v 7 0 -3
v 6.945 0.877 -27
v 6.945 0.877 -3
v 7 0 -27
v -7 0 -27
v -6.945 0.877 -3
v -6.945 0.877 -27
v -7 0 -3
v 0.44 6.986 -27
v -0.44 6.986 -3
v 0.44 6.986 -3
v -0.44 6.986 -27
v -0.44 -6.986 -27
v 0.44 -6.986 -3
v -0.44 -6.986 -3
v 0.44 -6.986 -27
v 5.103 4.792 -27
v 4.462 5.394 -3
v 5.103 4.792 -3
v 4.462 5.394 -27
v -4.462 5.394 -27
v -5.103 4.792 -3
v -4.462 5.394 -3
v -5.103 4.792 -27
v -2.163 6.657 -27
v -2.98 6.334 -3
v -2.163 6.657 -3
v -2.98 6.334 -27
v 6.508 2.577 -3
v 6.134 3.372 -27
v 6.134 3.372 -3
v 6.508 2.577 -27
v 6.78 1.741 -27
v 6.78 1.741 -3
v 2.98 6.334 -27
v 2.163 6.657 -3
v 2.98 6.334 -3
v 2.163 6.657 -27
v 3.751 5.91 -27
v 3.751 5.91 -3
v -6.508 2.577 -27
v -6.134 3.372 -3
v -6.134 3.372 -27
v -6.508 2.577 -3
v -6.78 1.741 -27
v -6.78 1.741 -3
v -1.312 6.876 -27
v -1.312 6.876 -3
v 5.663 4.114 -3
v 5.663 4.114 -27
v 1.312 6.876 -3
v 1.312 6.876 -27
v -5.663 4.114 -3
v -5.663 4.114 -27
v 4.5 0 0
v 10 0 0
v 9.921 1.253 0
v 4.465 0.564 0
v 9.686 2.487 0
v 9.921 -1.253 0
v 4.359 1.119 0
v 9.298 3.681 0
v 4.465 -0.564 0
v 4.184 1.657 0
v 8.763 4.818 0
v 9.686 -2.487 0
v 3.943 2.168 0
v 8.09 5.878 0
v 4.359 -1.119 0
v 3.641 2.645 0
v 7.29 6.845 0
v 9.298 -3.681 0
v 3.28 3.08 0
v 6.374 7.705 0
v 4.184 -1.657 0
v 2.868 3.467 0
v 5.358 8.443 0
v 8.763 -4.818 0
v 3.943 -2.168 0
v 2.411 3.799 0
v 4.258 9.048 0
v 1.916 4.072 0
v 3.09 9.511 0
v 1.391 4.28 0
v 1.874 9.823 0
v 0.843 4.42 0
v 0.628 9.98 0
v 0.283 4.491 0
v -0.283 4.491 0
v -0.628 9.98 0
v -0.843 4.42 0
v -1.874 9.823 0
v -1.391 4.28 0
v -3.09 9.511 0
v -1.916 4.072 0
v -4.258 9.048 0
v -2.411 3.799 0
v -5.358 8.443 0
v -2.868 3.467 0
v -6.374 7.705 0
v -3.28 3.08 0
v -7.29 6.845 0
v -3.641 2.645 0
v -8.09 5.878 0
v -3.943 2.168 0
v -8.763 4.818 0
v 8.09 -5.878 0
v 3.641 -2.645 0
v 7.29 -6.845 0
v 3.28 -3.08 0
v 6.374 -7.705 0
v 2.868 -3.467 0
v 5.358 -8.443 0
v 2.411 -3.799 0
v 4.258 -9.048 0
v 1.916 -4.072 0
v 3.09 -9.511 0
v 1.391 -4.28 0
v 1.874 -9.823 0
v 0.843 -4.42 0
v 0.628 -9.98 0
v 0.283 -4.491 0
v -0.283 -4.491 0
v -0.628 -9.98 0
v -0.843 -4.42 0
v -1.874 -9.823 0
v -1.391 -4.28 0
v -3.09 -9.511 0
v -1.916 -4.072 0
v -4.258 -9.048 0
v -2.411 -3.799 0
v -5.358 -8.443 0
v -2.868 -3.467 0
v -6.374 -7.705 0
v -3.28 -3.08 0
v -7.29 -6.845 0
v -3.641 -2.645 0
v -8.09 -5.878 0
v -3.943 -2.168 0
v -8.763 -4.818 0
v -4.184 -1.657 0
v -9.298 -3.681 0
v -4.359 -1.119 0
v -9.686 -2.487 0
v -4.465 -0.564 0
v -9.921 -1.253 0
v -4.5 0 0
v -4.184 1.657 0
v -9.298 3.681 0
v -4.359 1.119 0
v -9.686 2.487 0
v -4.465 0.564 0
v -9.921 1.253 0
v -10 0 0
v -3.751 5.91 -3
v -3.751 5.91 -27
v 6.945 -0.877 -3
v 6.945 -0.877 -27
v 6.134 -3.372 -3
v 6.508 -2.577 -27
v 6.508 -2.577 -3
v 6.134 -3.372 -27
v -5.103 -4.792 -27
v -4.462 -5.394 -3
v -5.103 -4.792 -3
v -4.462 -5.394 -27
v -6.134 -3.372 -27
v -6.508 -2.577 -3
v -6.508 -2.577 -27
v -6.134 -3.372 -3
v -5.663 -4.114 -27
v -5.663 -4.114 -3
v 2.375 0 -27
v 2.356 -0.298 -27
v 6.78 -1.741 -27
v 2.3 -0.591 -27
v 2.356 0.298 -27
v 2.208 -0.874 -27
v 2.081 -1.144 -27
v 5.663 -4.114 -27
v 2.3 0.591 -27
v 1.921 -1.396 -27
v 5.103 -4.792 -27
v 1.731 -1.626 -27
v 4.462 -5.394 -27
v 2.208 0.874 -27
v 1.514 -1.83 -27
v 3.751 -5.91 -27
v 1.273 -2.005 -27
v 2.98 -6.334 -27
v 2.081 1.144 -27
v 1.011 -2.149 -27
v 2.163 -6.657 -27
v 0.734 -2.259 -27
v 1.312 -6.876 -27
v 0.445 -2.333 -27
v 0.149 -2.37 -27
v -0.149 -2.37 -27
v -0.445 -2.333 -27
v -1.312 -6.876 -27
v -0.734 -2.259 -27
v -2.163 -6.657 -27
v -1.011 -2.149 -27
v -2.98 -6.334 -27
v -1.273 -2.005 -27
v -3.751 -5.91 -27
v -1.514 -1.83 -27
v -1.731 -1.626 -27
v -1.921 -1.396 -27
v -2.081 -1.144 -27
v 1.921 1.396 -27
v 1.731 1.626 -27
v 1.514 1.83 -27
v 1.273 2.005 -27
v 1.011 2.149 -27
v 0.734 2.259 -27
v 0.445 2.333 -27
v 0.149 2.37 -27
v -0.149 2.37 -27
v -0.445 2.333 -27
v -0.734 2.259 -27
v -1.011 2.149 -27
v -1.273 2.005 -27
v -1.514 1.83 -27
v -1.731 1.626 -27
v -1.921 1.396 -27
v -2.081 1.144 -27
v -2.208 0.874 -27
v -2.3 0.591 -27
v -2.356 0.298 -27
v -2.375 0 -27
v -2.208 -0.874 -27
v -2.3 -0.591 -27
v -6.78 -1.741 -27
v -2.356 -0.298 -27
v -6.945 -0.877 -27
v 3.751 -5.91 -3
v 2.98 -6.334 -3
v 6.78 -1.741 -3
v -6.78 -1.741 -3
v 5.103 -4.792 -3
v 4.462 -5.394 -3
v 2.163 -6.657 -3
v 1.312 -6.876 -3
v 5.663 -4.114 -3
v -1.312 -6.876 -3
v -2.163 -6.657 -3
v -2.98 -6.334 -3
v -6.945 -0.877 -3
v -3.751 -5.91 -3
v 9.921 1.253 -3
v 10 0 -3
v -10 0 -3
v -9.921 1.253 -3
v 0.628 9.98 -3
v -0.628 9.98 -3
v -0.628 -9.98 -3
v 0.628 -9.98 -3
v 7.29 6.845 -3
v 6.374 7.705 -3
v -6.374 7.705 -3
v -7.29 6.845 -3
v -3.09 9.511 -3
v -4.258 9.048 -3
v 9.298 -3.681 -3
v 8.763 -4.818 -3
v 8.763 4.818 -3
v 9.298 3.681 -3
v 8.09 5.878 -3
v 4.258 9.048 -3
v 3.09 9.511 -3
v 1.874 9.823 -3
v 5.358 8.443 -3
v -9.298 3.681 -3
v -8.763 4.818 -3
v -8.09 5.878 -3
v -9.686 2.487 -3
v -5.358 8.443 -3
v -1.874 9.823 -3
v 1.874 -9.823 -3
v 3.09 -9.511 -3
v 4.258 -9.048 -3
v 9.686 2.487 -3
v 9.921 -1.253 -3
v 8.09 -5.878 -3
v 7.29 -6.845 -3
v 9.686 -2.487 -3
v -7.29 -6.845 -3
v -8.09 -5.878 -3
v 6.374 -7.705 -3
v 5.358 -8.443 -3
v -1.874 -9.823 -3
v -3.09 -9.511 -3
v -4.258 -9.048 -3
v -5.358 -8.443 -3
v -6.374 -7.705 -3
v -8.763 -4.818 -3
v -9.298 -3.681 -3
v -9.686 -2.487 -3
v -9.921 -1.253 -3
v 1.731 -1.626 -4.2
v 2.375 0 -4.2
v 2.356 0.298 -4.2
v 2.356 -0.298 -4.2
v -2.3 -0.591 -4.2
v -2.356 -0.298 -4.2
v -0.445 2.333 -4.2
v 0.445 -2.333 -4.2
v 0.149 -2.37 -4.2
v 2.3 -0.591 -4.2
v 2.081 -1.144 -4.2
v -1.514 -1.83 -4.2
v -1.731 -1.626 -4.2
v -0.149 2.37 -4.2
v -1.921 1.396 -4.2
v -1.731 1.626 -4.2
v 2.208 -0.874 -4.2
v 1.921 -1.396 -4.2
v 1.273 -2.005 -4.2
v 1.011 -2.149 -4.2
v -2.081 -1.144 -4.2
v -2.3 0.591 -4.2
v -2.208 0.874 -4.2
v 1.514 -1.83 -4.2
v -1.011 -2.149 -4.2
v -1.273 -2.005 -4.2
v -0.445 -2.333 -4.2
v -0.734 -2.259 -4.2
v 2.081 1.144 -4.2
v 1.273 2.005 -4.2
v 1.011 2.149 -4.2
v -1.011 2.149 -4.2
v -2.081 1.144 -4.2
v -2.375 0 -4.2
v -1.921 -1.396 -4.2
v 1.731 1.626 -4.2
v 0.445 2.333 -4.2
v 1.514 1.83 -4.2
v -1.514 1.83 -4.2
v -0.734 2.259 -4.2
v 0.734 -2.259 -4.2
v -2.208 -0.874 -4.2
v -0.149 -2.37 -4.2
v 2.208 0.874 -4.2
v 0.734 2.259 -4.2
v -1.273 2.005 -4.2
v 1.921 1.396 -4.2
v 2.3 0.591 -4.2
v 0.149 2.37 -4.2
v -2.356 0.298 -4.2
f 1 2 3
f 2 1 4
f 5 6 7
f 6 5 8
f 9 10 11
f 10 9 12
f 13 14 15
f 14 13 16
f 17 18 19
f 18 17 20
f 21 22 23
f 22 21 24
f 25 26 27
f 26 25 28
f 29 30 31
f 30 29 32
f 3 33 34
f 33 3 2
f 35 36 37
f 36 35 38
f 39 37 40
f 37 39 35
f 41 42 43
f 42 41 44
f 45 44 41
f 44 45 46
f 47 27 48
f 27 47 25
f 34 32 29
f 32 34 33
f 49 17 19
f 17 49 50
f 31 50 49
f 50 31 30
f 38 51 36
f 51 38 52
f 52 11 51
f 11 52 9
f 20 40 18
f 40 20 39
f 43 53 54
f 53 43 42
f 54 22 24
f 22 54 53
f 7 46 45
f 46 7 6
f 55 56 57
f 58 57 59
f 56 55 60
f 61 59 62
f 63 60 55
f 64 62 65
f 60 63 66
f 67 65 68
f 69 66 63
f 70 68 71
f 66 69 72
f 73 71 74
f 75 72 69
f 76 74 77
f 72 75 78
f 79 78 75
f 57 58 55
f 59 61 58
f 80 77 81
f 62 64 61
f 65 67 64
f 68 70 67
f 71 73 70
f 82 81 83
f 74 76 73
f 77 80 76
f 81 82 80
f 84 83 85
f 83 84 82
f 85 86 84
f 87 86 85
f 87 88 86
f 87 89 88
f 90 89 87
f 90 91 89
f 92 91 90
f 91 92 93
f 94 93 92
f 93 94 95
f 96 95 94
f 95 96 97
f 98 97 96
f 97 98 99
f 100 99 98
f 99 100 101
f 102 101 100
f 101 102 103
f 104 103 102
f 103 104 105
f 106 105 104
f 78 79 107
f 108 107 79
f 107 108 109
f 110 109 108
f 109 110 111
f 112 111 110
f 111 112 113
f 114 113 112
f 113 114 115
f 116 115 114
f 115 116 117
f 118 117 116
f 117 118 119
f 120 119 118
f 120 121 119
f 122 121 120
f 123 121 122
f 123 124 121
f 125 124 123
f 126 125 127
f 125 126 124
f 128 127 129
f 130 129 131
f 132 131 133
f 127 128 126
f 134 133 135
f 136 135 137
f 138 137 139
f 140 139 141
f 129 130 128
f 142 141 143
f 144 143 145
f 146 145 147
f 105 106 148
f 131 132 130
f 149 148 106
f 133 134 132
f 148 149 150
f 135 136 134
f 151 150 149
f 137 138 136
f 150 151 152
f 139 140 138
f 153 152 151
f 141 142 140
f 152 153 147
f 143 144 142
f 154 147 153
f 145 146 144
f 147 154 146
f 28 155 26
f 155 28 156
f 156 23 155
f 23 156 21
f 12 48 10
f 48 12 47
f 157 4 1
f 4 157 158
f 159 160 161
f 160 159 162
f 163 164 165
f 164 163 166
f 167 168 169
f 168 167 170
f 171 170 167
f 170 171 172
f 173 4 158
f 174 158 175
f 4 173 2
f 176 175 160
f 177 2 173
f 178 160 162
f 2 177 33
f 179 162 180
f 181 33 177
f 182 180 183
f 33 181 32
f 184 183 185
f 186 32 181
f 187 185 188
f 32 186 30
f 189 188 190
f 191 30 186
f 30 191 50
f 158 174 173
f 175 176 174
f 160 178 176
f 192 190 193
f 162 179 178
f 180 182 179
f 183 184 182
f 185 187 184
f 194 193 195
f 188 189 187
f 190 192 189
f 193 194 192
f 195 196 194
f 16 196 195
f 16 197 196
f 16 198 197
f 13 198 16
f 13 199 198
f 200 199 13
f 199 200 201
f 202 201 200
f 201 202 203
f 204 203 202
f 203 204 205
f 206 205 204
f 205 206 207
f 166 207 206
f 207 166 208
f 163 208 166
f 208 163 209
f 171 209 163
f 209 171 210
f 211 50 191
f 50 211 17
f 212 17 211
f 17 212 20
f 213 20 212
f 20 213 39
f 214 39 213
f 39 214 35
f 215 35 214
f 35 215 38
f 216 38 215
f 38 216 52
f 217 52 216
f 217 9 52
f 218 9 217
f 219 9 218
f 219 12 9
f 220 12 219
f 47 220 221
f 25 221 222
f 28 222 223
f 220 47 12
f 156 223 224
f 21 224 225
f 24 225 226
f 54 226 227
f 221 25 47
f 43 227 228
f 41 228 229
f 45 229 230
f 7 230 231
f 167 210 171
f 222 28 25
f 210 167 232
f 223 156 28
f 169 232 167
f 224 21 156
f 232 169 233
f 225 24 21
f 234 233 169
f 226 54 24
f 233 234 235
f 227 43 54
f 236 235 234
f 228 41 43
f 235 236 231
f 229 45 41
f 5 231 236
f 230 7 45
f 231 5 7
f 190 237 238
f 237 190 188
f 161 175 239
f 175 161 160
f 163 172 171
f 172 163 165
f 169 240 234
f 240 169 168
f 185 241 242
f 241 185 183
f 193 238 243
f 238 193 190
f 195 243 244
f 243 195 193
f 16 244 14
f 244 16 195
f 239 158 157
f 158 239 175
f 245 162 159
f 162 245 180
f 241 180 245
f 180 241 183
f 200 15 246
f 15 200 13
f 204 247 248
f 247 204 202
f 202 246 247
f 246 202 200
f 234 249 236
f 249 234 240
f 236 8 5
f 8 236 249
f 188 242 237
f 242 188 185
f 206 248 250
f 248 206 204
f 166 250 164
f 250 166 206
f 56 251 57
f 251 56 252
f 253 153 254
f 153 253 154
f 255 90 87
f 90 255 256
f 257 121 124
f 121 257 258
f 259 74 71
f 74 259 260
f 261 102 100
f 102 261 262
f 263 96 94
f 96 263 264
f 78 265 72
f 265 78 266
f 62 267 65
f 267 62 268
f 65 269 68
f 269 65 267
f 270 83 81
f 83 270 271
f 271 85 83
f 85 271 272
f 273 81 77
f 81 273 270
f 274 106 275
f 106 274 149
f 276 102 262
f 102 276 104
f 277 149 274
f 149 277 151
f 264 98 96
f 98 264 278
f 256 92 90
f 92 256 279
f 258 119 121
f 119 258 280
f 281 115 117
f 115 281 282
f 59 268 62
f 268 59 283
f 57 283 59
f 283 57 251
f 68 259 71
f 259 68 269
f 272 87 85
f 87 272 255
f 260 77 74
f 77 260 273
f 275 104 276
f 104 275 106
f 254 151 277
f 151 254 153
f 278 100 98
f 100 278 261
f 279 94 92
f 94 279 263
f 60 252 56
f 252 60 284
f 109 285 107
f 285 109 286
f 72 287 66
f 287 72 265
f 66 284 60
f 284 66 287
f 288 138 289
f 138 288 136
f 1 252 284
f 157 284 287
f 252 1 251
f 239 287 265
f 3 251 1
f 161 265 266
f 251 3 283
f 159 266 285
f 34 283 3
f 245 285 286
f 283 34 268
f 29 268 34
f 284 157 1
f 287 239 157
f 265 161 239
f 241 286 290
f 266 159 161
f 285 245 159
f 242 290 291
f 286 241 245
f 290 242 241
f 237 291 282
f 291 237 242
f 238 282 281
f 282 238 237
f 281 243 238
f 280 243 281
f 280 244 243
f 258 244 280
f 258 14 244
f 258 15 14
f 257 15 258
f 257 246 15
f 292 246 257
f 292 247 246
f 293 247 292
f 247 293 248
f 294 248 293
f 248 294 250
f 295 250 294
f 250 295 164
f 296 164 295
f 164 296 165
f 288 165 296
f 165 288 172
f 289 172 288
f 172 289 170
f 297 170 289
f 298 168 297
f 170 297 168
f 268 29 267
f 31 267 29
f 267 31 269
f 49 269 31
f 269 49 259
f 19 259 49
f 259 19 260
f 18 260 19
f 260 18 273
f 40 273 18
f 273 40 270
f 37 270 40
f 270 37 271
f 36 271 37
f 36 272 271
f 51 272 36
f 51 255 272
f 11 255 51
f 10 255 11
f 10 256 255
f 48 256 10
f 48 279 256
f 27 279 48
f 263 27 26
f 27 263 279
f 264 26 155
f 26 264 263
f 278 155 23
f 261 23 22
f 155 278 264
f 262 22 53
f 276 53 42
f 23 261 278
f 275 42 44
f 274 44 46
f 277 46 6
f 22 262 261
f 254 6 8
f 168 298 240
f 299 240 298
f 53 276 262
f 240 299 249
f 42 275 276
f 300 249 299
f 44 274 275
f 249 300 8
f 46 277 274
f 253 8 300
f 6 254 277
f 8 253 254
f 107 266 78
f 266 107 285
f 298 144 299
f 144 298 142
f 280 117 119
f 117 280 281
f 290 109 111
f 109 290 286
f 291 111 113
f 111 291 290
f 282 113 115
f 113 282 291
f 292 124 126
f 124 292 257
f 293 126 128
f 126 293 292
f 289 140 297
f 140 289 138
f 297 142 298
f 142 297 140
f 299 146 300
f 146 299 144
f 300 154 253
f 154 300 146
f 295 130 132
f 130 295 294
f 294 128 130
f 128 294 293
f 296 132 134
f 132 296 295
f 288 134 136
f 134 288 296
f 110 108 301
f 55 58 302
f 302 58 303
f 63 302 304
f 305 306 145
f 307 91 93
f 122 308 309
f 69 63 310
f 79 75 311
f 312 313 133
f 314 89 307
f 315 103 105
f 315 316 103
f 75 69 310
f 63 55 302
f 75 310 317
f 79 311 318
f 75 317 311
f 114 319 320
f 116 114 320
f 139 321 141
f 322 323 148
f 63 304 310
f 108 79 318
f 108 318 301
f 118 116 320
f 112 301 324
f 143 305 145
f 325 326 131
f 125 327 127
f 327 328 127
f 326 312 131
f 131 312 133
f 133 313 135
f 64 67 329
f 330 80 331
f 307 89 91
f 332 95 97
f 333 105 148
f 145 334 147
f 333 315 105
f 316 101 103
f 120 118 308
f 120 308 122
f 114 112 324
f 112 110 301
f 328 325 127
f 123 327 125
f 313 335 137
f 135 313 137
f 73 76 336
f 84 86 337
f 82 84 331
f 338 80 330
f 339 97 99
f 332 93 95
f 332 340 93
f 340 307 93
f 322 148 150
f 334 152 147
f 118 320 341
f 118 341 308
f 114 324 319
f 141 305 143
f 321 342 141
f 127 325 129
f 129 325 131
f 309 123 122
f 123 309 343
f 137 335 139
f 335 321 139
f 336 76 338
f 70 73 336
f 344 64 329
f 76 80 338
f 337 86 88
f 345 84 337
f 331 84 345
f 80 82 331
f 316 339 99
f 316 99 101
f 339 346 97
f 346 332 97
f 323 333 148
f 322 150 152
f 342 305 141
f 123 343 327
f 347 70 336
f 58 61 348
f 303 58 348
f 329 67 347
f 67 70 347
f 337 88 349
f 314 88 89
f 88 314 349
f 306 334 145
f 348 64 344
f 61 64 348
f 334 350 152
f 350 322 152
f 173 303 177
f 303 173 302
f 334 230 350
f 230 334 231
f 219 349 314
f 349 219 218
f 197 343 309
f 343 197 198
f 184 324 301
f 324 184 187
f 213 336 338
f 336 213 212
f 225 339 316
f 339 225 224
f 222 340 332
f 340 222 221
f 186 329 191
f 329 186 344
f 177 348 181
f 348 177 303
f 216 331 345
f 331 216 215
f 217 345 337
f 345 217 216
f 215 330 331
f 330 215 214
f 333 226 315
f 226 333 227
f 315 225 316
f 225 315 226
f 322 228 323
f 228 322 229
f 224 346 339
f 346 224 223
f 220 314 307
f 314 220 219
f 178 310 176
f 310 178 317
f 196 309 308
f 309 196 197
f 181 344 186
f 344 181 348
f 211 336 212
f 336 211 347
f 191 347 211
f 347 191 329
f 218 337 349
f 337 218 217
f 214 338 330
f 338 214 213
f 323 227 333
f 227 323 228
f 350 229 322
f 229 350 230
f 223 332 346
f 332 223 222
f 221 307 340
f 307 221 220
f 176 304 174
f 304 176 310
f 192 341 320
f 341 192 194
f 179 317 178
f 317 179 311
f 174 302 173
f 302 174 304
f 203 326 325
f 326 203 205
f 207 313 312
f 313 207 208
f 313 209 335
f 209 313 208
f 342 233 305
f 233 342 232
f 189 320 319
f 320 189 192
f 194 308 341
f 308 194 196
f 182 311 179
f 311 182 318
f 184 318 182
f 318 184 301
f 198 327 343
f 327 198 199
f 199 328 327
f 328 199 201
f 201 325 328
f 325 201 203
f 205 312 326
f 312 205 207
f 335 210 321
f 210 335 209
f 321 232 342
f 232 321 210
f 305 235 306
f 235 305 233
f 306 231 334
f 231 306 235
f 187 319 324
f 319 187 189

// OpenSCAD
$fn = 50;


difference() {
	union() {
		translate(v = [0, 0, -27.0000000000]) {
			cylinder(h = 27, r = 7.0000000000);
		}
		translate(v = [0, 0, -3.0000000000]) {
			cylinder(h = 3, r = 10.0000000000);
		}
	}
	union() {
		translate(v = [0, 0, 0]) {
			rotate(a = [0, 0, 0]) {
				difference() {
					union() {
						#translate(v = [0, 0, -27.0000000000]) {
							cylinder(h = 27, r = 2.2500000000);
						}
						#translate(v = [0, 0, -4.2000000000]) {
							cylinder(h = 4.2000000000, r = 7.0000000000, r1 = 2.3750000000, r2 = 4.5000000000);
						}
						#translate(v = [0, 0, -27.0000000000]) {
							cylinder(h = 27, r = 2.3750000000);
						}
						#translate(v = [0, 0, -27.0000000000]) {
							cylinder(h = 27, r = 2.2500000000);
						}
					}
					union();
				}
			}
		}
	}
}
